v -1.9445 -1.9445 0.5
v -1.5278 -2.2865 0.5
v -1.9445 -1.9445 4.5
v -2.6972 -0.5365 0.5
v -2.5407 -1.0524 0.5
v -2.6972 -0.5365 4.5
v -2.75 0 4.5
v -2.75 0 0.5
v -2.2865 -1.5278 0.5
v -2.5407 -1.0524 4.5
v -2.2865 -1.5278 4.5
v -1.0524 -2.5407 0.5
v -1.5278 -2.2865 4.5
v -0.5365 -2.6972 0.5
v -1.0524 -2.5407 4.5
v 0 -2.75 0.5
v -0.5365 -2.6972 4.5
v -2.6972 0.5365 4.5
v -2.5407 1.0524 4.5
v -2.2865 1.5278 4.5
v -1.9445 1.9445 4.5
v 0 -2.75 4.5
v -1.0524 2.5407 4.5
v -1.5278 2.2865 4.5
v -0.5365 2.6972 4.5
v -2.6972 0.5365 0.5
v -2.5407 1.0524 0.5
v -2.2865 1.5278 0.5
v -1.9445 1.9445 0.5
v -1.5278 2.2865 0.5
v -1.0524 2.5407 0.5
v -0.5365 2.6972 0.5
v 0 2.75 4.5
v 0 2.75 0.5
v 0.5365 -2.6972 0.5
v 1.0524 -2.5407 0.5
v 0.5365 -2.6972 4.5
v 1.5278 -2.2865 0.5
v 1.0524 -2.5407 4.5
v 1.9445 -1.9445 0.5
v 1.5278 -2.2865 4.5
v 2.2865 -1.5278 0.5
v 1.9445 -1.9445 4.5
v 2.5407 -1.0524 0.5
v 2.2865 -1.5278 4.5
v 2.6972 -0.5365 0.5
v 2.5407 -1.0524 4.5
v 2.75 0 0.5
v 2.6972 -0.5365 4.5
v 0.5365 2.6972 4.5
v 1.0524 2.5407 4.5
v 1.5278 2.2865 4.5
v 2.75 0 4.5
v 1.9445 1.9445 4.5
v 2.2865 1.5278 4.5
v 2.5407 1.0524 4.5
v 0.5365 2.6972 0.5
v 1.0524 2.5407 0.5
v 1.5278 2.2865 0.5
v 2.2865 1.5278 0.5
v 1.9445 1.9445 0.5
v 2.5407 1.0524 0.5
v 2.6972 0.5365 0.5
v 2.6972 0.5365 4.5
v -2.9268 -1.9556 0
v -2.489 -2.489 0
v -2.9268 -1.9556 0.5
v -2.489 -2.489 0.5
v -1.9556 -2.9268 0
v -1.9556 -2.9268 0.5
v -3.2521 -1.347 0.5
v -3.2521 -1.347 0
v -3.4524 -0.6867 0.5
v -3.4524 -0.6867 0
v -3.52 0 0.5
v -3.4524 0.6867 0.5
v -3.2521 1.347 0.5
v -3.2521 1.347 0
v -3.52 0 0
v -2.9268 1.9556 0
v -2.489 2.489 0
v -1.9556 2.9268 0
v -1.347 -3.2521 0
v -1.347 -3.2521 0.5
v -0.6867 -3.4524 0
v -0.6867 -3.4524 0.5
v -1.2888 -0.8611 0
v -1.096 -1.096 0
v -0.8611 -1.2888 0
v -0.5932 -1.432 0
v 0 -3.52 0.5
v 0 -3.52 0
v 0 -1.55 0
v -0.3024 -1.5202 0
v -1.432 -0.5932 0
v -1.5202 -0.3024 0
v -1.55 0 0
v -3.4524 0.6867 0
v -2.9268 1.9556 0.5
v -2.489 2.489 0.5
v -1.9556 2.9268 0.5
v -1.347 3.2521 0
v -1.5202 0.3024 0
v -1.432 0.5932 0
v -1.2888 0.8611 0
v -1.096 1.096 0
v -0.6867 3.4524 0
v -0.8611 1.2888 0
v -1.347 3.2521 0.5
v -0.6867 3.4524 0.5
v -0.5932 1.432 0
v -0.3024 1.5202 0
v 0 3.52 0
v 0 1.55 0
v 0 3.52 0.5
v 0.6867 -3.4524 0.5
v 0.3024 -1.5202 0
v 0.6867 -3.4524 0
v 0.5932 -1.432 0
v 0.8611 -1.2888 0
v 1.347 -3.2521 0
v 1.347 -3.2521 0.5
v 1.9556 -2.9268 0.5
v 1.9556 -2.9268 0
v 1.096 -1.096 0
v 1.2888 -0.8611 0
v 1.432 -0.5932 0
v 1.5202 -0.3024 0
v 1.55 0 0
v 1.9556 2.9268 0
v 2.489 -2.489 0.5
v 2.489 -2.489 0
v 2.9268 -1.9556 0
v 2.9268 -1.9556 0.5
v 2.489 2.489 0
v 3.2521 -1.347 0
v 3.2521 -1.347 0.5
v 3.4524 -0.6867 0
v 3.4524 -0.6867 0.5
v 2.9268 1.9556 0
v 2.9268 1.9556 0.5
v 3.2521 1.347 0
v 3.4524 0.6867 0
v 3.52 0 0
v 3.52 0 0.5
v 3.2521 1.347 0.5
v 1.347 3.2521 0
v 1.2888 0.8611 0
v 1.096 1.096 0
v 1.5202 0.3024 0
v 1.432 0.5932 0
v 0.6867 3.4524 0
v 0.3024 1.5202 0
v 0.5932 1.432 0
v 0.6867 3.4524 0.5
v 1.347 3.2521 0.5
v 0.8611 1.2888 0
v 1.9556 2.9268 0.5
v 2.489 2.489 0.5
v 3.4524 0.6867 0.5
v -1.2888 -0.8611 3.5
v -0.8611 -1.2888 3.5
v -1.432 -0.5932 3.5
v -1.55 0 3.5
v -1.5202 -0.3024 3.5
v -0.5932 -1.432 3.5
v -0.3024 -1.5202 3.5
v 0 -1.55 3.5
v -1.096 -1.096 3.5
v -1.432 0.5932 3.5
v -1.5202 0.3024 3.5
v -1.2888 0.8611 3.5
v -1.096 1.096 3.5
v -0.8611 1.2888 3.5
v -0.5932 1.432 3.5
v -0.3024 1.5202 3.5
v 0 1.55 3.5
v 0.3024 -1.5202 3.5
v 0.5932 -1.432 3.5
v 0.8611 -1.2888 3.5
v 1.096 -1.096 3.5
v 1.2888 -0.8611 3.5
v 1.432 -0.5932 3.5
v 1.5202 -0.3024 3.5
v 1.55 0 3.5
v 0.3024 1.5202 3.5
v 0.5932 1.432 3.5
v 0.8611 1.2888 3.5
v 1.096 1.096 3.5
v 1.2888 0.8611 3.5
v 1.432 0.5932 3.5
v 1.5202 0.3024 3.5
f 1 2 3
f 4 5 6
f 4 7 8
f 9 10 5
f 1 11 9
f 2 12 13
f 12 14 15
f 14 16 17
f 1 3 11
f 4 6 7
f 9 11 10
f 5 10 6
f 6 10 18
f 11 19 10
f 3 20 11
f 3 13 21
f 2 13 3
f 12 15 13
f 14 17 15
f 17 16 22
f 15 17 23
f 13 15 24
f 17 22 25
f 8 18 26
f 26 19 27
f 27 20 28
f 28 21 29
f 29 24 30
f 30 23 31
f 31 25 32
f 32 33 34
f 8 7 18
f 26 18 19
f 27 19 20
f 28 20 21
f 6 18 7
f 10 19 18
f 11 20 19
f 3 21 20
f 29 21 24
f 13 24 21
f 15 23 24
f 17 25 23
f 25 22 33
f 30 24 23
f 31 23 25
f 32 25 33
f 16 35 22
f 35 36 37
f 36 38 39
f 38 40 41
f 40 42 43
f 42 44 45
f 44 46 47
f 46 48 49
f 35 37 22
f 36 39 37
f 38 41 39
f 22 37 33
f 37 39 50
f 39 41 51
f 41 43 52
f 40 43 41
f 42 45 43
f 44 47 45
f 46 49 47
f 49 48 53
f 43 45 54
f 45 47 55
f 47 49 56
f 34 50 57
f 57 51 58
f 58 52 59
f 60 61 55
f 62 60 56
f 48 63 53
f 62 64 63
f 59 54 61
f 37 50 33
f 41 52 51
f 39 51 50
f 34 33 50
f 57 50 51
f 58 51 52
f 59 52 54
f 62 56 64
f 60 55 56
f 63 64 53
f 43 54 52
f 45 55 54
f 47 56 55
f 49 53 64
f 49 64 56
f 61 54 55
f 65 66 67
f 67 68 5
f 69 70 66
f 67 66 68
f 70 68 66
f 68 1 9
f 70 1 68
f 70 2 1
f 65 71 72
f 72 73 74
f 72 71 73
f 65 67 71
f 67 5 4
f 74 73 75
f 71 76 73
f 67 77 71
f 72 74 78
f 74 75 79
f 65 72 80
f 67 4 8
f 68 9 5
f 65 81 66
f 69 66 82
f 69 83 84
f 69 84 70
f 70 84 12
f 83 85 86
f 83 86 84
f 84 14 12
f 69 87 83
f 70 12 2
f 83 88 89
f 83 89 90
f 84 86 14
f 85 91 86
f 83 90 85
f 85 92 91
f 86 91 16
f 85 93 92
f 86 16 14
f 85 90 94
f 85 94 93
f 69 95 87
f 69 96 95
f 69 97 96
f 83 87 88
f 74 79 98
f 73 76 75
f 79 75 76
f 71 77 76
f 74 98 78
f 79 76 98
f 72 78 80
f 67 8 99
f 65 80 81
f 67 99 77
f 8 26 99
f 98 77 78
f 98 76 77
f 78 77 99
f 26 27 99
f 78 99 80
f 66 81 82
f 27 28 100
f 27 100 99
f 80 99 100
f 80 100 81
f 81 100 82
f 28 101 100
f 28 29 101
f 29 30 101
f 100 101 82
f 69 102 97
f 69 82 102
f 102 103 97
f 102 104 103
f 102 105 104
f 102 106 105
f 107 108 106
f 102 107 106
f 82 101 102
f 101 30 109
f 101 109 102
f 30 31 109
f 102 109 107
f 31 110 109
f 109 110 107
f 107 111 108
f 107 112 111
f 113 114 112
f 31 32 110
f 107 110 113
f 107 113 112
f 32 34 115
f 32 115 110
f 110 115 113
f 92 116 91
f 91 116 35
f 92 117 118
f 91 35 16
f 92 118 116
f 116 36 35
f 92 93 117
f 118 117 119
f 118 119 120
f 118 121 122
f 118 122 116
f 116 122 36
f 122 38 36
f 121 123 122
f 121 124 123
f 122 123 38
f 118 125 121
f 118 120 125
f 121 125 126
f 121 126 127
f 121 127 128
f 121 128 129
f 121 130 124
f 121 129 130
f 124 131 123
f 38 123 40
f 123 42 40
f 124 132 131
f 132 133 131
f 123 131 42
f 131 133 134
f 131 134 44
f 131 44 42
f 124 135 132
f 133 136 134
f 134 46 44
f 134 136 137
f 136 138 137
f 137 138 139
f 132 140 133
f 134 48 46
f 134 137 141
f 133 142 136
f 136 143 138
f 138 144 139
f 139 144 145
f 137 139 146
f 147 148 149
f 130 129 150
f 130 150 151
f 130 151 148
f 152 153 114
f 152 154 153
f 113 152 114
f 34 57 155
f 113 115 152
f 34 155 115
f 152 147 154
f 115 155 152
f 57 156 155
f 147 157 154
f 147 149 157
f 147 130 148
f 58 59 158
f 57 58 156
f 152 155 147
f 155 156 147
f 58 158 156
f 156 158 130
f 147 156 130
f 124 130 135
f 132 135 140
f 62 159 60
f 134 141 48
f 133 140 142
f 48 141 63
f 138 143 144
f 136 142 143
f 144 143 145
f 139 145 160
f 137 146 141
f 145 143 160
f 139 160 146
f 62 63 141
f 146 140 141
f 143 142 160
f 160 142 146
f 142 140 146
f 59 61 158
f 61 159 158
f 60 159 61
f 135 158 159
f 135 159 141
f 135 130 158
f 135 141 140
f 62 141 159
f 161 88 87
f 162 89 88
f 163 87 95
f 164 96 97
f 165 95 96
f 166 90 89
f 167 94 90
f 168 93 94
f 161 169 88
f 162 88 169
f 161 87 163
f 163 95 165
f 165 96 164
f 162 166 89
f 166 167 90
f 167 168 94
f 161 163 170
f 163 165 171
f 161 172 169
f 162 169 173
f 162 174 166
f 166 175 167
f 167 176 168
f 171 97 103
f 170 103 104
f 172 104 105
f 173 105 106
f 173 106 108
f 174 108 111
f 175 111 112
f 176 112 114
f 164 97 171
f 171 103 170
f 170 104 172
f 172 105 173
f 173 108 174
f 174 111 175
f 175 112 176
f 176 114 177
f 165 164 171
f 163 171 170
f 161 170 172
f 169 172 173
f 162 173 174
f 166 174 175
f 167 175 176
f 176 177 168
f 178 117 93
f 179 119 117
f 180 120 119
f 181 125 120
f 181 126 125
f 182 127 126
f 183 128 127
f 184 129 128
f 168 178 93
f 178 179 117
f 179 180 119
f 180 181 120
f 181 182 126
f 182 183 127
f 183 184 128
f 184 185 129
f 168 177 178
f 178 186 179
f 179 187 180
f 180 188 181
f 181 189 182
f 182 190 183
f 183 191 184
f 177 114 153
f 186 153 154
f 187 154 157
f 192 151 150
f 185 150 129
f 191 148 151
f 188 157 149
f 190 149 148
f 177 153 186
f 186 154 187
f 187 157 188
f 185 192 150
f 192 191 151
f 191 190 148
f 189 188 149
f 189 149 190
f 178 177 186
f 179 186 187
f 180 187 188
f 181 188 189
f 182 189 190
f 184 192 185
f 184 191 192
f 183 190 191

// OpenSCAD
$fn = 32;

difference() {
  union() {
    cylinder(h = 4.5, r = 5.5/2);
    cylinder(h = 0.5, r = 7.04/2);
  }
  
  cylinder(h = 3.5, r = 3.1 / 2);
}
